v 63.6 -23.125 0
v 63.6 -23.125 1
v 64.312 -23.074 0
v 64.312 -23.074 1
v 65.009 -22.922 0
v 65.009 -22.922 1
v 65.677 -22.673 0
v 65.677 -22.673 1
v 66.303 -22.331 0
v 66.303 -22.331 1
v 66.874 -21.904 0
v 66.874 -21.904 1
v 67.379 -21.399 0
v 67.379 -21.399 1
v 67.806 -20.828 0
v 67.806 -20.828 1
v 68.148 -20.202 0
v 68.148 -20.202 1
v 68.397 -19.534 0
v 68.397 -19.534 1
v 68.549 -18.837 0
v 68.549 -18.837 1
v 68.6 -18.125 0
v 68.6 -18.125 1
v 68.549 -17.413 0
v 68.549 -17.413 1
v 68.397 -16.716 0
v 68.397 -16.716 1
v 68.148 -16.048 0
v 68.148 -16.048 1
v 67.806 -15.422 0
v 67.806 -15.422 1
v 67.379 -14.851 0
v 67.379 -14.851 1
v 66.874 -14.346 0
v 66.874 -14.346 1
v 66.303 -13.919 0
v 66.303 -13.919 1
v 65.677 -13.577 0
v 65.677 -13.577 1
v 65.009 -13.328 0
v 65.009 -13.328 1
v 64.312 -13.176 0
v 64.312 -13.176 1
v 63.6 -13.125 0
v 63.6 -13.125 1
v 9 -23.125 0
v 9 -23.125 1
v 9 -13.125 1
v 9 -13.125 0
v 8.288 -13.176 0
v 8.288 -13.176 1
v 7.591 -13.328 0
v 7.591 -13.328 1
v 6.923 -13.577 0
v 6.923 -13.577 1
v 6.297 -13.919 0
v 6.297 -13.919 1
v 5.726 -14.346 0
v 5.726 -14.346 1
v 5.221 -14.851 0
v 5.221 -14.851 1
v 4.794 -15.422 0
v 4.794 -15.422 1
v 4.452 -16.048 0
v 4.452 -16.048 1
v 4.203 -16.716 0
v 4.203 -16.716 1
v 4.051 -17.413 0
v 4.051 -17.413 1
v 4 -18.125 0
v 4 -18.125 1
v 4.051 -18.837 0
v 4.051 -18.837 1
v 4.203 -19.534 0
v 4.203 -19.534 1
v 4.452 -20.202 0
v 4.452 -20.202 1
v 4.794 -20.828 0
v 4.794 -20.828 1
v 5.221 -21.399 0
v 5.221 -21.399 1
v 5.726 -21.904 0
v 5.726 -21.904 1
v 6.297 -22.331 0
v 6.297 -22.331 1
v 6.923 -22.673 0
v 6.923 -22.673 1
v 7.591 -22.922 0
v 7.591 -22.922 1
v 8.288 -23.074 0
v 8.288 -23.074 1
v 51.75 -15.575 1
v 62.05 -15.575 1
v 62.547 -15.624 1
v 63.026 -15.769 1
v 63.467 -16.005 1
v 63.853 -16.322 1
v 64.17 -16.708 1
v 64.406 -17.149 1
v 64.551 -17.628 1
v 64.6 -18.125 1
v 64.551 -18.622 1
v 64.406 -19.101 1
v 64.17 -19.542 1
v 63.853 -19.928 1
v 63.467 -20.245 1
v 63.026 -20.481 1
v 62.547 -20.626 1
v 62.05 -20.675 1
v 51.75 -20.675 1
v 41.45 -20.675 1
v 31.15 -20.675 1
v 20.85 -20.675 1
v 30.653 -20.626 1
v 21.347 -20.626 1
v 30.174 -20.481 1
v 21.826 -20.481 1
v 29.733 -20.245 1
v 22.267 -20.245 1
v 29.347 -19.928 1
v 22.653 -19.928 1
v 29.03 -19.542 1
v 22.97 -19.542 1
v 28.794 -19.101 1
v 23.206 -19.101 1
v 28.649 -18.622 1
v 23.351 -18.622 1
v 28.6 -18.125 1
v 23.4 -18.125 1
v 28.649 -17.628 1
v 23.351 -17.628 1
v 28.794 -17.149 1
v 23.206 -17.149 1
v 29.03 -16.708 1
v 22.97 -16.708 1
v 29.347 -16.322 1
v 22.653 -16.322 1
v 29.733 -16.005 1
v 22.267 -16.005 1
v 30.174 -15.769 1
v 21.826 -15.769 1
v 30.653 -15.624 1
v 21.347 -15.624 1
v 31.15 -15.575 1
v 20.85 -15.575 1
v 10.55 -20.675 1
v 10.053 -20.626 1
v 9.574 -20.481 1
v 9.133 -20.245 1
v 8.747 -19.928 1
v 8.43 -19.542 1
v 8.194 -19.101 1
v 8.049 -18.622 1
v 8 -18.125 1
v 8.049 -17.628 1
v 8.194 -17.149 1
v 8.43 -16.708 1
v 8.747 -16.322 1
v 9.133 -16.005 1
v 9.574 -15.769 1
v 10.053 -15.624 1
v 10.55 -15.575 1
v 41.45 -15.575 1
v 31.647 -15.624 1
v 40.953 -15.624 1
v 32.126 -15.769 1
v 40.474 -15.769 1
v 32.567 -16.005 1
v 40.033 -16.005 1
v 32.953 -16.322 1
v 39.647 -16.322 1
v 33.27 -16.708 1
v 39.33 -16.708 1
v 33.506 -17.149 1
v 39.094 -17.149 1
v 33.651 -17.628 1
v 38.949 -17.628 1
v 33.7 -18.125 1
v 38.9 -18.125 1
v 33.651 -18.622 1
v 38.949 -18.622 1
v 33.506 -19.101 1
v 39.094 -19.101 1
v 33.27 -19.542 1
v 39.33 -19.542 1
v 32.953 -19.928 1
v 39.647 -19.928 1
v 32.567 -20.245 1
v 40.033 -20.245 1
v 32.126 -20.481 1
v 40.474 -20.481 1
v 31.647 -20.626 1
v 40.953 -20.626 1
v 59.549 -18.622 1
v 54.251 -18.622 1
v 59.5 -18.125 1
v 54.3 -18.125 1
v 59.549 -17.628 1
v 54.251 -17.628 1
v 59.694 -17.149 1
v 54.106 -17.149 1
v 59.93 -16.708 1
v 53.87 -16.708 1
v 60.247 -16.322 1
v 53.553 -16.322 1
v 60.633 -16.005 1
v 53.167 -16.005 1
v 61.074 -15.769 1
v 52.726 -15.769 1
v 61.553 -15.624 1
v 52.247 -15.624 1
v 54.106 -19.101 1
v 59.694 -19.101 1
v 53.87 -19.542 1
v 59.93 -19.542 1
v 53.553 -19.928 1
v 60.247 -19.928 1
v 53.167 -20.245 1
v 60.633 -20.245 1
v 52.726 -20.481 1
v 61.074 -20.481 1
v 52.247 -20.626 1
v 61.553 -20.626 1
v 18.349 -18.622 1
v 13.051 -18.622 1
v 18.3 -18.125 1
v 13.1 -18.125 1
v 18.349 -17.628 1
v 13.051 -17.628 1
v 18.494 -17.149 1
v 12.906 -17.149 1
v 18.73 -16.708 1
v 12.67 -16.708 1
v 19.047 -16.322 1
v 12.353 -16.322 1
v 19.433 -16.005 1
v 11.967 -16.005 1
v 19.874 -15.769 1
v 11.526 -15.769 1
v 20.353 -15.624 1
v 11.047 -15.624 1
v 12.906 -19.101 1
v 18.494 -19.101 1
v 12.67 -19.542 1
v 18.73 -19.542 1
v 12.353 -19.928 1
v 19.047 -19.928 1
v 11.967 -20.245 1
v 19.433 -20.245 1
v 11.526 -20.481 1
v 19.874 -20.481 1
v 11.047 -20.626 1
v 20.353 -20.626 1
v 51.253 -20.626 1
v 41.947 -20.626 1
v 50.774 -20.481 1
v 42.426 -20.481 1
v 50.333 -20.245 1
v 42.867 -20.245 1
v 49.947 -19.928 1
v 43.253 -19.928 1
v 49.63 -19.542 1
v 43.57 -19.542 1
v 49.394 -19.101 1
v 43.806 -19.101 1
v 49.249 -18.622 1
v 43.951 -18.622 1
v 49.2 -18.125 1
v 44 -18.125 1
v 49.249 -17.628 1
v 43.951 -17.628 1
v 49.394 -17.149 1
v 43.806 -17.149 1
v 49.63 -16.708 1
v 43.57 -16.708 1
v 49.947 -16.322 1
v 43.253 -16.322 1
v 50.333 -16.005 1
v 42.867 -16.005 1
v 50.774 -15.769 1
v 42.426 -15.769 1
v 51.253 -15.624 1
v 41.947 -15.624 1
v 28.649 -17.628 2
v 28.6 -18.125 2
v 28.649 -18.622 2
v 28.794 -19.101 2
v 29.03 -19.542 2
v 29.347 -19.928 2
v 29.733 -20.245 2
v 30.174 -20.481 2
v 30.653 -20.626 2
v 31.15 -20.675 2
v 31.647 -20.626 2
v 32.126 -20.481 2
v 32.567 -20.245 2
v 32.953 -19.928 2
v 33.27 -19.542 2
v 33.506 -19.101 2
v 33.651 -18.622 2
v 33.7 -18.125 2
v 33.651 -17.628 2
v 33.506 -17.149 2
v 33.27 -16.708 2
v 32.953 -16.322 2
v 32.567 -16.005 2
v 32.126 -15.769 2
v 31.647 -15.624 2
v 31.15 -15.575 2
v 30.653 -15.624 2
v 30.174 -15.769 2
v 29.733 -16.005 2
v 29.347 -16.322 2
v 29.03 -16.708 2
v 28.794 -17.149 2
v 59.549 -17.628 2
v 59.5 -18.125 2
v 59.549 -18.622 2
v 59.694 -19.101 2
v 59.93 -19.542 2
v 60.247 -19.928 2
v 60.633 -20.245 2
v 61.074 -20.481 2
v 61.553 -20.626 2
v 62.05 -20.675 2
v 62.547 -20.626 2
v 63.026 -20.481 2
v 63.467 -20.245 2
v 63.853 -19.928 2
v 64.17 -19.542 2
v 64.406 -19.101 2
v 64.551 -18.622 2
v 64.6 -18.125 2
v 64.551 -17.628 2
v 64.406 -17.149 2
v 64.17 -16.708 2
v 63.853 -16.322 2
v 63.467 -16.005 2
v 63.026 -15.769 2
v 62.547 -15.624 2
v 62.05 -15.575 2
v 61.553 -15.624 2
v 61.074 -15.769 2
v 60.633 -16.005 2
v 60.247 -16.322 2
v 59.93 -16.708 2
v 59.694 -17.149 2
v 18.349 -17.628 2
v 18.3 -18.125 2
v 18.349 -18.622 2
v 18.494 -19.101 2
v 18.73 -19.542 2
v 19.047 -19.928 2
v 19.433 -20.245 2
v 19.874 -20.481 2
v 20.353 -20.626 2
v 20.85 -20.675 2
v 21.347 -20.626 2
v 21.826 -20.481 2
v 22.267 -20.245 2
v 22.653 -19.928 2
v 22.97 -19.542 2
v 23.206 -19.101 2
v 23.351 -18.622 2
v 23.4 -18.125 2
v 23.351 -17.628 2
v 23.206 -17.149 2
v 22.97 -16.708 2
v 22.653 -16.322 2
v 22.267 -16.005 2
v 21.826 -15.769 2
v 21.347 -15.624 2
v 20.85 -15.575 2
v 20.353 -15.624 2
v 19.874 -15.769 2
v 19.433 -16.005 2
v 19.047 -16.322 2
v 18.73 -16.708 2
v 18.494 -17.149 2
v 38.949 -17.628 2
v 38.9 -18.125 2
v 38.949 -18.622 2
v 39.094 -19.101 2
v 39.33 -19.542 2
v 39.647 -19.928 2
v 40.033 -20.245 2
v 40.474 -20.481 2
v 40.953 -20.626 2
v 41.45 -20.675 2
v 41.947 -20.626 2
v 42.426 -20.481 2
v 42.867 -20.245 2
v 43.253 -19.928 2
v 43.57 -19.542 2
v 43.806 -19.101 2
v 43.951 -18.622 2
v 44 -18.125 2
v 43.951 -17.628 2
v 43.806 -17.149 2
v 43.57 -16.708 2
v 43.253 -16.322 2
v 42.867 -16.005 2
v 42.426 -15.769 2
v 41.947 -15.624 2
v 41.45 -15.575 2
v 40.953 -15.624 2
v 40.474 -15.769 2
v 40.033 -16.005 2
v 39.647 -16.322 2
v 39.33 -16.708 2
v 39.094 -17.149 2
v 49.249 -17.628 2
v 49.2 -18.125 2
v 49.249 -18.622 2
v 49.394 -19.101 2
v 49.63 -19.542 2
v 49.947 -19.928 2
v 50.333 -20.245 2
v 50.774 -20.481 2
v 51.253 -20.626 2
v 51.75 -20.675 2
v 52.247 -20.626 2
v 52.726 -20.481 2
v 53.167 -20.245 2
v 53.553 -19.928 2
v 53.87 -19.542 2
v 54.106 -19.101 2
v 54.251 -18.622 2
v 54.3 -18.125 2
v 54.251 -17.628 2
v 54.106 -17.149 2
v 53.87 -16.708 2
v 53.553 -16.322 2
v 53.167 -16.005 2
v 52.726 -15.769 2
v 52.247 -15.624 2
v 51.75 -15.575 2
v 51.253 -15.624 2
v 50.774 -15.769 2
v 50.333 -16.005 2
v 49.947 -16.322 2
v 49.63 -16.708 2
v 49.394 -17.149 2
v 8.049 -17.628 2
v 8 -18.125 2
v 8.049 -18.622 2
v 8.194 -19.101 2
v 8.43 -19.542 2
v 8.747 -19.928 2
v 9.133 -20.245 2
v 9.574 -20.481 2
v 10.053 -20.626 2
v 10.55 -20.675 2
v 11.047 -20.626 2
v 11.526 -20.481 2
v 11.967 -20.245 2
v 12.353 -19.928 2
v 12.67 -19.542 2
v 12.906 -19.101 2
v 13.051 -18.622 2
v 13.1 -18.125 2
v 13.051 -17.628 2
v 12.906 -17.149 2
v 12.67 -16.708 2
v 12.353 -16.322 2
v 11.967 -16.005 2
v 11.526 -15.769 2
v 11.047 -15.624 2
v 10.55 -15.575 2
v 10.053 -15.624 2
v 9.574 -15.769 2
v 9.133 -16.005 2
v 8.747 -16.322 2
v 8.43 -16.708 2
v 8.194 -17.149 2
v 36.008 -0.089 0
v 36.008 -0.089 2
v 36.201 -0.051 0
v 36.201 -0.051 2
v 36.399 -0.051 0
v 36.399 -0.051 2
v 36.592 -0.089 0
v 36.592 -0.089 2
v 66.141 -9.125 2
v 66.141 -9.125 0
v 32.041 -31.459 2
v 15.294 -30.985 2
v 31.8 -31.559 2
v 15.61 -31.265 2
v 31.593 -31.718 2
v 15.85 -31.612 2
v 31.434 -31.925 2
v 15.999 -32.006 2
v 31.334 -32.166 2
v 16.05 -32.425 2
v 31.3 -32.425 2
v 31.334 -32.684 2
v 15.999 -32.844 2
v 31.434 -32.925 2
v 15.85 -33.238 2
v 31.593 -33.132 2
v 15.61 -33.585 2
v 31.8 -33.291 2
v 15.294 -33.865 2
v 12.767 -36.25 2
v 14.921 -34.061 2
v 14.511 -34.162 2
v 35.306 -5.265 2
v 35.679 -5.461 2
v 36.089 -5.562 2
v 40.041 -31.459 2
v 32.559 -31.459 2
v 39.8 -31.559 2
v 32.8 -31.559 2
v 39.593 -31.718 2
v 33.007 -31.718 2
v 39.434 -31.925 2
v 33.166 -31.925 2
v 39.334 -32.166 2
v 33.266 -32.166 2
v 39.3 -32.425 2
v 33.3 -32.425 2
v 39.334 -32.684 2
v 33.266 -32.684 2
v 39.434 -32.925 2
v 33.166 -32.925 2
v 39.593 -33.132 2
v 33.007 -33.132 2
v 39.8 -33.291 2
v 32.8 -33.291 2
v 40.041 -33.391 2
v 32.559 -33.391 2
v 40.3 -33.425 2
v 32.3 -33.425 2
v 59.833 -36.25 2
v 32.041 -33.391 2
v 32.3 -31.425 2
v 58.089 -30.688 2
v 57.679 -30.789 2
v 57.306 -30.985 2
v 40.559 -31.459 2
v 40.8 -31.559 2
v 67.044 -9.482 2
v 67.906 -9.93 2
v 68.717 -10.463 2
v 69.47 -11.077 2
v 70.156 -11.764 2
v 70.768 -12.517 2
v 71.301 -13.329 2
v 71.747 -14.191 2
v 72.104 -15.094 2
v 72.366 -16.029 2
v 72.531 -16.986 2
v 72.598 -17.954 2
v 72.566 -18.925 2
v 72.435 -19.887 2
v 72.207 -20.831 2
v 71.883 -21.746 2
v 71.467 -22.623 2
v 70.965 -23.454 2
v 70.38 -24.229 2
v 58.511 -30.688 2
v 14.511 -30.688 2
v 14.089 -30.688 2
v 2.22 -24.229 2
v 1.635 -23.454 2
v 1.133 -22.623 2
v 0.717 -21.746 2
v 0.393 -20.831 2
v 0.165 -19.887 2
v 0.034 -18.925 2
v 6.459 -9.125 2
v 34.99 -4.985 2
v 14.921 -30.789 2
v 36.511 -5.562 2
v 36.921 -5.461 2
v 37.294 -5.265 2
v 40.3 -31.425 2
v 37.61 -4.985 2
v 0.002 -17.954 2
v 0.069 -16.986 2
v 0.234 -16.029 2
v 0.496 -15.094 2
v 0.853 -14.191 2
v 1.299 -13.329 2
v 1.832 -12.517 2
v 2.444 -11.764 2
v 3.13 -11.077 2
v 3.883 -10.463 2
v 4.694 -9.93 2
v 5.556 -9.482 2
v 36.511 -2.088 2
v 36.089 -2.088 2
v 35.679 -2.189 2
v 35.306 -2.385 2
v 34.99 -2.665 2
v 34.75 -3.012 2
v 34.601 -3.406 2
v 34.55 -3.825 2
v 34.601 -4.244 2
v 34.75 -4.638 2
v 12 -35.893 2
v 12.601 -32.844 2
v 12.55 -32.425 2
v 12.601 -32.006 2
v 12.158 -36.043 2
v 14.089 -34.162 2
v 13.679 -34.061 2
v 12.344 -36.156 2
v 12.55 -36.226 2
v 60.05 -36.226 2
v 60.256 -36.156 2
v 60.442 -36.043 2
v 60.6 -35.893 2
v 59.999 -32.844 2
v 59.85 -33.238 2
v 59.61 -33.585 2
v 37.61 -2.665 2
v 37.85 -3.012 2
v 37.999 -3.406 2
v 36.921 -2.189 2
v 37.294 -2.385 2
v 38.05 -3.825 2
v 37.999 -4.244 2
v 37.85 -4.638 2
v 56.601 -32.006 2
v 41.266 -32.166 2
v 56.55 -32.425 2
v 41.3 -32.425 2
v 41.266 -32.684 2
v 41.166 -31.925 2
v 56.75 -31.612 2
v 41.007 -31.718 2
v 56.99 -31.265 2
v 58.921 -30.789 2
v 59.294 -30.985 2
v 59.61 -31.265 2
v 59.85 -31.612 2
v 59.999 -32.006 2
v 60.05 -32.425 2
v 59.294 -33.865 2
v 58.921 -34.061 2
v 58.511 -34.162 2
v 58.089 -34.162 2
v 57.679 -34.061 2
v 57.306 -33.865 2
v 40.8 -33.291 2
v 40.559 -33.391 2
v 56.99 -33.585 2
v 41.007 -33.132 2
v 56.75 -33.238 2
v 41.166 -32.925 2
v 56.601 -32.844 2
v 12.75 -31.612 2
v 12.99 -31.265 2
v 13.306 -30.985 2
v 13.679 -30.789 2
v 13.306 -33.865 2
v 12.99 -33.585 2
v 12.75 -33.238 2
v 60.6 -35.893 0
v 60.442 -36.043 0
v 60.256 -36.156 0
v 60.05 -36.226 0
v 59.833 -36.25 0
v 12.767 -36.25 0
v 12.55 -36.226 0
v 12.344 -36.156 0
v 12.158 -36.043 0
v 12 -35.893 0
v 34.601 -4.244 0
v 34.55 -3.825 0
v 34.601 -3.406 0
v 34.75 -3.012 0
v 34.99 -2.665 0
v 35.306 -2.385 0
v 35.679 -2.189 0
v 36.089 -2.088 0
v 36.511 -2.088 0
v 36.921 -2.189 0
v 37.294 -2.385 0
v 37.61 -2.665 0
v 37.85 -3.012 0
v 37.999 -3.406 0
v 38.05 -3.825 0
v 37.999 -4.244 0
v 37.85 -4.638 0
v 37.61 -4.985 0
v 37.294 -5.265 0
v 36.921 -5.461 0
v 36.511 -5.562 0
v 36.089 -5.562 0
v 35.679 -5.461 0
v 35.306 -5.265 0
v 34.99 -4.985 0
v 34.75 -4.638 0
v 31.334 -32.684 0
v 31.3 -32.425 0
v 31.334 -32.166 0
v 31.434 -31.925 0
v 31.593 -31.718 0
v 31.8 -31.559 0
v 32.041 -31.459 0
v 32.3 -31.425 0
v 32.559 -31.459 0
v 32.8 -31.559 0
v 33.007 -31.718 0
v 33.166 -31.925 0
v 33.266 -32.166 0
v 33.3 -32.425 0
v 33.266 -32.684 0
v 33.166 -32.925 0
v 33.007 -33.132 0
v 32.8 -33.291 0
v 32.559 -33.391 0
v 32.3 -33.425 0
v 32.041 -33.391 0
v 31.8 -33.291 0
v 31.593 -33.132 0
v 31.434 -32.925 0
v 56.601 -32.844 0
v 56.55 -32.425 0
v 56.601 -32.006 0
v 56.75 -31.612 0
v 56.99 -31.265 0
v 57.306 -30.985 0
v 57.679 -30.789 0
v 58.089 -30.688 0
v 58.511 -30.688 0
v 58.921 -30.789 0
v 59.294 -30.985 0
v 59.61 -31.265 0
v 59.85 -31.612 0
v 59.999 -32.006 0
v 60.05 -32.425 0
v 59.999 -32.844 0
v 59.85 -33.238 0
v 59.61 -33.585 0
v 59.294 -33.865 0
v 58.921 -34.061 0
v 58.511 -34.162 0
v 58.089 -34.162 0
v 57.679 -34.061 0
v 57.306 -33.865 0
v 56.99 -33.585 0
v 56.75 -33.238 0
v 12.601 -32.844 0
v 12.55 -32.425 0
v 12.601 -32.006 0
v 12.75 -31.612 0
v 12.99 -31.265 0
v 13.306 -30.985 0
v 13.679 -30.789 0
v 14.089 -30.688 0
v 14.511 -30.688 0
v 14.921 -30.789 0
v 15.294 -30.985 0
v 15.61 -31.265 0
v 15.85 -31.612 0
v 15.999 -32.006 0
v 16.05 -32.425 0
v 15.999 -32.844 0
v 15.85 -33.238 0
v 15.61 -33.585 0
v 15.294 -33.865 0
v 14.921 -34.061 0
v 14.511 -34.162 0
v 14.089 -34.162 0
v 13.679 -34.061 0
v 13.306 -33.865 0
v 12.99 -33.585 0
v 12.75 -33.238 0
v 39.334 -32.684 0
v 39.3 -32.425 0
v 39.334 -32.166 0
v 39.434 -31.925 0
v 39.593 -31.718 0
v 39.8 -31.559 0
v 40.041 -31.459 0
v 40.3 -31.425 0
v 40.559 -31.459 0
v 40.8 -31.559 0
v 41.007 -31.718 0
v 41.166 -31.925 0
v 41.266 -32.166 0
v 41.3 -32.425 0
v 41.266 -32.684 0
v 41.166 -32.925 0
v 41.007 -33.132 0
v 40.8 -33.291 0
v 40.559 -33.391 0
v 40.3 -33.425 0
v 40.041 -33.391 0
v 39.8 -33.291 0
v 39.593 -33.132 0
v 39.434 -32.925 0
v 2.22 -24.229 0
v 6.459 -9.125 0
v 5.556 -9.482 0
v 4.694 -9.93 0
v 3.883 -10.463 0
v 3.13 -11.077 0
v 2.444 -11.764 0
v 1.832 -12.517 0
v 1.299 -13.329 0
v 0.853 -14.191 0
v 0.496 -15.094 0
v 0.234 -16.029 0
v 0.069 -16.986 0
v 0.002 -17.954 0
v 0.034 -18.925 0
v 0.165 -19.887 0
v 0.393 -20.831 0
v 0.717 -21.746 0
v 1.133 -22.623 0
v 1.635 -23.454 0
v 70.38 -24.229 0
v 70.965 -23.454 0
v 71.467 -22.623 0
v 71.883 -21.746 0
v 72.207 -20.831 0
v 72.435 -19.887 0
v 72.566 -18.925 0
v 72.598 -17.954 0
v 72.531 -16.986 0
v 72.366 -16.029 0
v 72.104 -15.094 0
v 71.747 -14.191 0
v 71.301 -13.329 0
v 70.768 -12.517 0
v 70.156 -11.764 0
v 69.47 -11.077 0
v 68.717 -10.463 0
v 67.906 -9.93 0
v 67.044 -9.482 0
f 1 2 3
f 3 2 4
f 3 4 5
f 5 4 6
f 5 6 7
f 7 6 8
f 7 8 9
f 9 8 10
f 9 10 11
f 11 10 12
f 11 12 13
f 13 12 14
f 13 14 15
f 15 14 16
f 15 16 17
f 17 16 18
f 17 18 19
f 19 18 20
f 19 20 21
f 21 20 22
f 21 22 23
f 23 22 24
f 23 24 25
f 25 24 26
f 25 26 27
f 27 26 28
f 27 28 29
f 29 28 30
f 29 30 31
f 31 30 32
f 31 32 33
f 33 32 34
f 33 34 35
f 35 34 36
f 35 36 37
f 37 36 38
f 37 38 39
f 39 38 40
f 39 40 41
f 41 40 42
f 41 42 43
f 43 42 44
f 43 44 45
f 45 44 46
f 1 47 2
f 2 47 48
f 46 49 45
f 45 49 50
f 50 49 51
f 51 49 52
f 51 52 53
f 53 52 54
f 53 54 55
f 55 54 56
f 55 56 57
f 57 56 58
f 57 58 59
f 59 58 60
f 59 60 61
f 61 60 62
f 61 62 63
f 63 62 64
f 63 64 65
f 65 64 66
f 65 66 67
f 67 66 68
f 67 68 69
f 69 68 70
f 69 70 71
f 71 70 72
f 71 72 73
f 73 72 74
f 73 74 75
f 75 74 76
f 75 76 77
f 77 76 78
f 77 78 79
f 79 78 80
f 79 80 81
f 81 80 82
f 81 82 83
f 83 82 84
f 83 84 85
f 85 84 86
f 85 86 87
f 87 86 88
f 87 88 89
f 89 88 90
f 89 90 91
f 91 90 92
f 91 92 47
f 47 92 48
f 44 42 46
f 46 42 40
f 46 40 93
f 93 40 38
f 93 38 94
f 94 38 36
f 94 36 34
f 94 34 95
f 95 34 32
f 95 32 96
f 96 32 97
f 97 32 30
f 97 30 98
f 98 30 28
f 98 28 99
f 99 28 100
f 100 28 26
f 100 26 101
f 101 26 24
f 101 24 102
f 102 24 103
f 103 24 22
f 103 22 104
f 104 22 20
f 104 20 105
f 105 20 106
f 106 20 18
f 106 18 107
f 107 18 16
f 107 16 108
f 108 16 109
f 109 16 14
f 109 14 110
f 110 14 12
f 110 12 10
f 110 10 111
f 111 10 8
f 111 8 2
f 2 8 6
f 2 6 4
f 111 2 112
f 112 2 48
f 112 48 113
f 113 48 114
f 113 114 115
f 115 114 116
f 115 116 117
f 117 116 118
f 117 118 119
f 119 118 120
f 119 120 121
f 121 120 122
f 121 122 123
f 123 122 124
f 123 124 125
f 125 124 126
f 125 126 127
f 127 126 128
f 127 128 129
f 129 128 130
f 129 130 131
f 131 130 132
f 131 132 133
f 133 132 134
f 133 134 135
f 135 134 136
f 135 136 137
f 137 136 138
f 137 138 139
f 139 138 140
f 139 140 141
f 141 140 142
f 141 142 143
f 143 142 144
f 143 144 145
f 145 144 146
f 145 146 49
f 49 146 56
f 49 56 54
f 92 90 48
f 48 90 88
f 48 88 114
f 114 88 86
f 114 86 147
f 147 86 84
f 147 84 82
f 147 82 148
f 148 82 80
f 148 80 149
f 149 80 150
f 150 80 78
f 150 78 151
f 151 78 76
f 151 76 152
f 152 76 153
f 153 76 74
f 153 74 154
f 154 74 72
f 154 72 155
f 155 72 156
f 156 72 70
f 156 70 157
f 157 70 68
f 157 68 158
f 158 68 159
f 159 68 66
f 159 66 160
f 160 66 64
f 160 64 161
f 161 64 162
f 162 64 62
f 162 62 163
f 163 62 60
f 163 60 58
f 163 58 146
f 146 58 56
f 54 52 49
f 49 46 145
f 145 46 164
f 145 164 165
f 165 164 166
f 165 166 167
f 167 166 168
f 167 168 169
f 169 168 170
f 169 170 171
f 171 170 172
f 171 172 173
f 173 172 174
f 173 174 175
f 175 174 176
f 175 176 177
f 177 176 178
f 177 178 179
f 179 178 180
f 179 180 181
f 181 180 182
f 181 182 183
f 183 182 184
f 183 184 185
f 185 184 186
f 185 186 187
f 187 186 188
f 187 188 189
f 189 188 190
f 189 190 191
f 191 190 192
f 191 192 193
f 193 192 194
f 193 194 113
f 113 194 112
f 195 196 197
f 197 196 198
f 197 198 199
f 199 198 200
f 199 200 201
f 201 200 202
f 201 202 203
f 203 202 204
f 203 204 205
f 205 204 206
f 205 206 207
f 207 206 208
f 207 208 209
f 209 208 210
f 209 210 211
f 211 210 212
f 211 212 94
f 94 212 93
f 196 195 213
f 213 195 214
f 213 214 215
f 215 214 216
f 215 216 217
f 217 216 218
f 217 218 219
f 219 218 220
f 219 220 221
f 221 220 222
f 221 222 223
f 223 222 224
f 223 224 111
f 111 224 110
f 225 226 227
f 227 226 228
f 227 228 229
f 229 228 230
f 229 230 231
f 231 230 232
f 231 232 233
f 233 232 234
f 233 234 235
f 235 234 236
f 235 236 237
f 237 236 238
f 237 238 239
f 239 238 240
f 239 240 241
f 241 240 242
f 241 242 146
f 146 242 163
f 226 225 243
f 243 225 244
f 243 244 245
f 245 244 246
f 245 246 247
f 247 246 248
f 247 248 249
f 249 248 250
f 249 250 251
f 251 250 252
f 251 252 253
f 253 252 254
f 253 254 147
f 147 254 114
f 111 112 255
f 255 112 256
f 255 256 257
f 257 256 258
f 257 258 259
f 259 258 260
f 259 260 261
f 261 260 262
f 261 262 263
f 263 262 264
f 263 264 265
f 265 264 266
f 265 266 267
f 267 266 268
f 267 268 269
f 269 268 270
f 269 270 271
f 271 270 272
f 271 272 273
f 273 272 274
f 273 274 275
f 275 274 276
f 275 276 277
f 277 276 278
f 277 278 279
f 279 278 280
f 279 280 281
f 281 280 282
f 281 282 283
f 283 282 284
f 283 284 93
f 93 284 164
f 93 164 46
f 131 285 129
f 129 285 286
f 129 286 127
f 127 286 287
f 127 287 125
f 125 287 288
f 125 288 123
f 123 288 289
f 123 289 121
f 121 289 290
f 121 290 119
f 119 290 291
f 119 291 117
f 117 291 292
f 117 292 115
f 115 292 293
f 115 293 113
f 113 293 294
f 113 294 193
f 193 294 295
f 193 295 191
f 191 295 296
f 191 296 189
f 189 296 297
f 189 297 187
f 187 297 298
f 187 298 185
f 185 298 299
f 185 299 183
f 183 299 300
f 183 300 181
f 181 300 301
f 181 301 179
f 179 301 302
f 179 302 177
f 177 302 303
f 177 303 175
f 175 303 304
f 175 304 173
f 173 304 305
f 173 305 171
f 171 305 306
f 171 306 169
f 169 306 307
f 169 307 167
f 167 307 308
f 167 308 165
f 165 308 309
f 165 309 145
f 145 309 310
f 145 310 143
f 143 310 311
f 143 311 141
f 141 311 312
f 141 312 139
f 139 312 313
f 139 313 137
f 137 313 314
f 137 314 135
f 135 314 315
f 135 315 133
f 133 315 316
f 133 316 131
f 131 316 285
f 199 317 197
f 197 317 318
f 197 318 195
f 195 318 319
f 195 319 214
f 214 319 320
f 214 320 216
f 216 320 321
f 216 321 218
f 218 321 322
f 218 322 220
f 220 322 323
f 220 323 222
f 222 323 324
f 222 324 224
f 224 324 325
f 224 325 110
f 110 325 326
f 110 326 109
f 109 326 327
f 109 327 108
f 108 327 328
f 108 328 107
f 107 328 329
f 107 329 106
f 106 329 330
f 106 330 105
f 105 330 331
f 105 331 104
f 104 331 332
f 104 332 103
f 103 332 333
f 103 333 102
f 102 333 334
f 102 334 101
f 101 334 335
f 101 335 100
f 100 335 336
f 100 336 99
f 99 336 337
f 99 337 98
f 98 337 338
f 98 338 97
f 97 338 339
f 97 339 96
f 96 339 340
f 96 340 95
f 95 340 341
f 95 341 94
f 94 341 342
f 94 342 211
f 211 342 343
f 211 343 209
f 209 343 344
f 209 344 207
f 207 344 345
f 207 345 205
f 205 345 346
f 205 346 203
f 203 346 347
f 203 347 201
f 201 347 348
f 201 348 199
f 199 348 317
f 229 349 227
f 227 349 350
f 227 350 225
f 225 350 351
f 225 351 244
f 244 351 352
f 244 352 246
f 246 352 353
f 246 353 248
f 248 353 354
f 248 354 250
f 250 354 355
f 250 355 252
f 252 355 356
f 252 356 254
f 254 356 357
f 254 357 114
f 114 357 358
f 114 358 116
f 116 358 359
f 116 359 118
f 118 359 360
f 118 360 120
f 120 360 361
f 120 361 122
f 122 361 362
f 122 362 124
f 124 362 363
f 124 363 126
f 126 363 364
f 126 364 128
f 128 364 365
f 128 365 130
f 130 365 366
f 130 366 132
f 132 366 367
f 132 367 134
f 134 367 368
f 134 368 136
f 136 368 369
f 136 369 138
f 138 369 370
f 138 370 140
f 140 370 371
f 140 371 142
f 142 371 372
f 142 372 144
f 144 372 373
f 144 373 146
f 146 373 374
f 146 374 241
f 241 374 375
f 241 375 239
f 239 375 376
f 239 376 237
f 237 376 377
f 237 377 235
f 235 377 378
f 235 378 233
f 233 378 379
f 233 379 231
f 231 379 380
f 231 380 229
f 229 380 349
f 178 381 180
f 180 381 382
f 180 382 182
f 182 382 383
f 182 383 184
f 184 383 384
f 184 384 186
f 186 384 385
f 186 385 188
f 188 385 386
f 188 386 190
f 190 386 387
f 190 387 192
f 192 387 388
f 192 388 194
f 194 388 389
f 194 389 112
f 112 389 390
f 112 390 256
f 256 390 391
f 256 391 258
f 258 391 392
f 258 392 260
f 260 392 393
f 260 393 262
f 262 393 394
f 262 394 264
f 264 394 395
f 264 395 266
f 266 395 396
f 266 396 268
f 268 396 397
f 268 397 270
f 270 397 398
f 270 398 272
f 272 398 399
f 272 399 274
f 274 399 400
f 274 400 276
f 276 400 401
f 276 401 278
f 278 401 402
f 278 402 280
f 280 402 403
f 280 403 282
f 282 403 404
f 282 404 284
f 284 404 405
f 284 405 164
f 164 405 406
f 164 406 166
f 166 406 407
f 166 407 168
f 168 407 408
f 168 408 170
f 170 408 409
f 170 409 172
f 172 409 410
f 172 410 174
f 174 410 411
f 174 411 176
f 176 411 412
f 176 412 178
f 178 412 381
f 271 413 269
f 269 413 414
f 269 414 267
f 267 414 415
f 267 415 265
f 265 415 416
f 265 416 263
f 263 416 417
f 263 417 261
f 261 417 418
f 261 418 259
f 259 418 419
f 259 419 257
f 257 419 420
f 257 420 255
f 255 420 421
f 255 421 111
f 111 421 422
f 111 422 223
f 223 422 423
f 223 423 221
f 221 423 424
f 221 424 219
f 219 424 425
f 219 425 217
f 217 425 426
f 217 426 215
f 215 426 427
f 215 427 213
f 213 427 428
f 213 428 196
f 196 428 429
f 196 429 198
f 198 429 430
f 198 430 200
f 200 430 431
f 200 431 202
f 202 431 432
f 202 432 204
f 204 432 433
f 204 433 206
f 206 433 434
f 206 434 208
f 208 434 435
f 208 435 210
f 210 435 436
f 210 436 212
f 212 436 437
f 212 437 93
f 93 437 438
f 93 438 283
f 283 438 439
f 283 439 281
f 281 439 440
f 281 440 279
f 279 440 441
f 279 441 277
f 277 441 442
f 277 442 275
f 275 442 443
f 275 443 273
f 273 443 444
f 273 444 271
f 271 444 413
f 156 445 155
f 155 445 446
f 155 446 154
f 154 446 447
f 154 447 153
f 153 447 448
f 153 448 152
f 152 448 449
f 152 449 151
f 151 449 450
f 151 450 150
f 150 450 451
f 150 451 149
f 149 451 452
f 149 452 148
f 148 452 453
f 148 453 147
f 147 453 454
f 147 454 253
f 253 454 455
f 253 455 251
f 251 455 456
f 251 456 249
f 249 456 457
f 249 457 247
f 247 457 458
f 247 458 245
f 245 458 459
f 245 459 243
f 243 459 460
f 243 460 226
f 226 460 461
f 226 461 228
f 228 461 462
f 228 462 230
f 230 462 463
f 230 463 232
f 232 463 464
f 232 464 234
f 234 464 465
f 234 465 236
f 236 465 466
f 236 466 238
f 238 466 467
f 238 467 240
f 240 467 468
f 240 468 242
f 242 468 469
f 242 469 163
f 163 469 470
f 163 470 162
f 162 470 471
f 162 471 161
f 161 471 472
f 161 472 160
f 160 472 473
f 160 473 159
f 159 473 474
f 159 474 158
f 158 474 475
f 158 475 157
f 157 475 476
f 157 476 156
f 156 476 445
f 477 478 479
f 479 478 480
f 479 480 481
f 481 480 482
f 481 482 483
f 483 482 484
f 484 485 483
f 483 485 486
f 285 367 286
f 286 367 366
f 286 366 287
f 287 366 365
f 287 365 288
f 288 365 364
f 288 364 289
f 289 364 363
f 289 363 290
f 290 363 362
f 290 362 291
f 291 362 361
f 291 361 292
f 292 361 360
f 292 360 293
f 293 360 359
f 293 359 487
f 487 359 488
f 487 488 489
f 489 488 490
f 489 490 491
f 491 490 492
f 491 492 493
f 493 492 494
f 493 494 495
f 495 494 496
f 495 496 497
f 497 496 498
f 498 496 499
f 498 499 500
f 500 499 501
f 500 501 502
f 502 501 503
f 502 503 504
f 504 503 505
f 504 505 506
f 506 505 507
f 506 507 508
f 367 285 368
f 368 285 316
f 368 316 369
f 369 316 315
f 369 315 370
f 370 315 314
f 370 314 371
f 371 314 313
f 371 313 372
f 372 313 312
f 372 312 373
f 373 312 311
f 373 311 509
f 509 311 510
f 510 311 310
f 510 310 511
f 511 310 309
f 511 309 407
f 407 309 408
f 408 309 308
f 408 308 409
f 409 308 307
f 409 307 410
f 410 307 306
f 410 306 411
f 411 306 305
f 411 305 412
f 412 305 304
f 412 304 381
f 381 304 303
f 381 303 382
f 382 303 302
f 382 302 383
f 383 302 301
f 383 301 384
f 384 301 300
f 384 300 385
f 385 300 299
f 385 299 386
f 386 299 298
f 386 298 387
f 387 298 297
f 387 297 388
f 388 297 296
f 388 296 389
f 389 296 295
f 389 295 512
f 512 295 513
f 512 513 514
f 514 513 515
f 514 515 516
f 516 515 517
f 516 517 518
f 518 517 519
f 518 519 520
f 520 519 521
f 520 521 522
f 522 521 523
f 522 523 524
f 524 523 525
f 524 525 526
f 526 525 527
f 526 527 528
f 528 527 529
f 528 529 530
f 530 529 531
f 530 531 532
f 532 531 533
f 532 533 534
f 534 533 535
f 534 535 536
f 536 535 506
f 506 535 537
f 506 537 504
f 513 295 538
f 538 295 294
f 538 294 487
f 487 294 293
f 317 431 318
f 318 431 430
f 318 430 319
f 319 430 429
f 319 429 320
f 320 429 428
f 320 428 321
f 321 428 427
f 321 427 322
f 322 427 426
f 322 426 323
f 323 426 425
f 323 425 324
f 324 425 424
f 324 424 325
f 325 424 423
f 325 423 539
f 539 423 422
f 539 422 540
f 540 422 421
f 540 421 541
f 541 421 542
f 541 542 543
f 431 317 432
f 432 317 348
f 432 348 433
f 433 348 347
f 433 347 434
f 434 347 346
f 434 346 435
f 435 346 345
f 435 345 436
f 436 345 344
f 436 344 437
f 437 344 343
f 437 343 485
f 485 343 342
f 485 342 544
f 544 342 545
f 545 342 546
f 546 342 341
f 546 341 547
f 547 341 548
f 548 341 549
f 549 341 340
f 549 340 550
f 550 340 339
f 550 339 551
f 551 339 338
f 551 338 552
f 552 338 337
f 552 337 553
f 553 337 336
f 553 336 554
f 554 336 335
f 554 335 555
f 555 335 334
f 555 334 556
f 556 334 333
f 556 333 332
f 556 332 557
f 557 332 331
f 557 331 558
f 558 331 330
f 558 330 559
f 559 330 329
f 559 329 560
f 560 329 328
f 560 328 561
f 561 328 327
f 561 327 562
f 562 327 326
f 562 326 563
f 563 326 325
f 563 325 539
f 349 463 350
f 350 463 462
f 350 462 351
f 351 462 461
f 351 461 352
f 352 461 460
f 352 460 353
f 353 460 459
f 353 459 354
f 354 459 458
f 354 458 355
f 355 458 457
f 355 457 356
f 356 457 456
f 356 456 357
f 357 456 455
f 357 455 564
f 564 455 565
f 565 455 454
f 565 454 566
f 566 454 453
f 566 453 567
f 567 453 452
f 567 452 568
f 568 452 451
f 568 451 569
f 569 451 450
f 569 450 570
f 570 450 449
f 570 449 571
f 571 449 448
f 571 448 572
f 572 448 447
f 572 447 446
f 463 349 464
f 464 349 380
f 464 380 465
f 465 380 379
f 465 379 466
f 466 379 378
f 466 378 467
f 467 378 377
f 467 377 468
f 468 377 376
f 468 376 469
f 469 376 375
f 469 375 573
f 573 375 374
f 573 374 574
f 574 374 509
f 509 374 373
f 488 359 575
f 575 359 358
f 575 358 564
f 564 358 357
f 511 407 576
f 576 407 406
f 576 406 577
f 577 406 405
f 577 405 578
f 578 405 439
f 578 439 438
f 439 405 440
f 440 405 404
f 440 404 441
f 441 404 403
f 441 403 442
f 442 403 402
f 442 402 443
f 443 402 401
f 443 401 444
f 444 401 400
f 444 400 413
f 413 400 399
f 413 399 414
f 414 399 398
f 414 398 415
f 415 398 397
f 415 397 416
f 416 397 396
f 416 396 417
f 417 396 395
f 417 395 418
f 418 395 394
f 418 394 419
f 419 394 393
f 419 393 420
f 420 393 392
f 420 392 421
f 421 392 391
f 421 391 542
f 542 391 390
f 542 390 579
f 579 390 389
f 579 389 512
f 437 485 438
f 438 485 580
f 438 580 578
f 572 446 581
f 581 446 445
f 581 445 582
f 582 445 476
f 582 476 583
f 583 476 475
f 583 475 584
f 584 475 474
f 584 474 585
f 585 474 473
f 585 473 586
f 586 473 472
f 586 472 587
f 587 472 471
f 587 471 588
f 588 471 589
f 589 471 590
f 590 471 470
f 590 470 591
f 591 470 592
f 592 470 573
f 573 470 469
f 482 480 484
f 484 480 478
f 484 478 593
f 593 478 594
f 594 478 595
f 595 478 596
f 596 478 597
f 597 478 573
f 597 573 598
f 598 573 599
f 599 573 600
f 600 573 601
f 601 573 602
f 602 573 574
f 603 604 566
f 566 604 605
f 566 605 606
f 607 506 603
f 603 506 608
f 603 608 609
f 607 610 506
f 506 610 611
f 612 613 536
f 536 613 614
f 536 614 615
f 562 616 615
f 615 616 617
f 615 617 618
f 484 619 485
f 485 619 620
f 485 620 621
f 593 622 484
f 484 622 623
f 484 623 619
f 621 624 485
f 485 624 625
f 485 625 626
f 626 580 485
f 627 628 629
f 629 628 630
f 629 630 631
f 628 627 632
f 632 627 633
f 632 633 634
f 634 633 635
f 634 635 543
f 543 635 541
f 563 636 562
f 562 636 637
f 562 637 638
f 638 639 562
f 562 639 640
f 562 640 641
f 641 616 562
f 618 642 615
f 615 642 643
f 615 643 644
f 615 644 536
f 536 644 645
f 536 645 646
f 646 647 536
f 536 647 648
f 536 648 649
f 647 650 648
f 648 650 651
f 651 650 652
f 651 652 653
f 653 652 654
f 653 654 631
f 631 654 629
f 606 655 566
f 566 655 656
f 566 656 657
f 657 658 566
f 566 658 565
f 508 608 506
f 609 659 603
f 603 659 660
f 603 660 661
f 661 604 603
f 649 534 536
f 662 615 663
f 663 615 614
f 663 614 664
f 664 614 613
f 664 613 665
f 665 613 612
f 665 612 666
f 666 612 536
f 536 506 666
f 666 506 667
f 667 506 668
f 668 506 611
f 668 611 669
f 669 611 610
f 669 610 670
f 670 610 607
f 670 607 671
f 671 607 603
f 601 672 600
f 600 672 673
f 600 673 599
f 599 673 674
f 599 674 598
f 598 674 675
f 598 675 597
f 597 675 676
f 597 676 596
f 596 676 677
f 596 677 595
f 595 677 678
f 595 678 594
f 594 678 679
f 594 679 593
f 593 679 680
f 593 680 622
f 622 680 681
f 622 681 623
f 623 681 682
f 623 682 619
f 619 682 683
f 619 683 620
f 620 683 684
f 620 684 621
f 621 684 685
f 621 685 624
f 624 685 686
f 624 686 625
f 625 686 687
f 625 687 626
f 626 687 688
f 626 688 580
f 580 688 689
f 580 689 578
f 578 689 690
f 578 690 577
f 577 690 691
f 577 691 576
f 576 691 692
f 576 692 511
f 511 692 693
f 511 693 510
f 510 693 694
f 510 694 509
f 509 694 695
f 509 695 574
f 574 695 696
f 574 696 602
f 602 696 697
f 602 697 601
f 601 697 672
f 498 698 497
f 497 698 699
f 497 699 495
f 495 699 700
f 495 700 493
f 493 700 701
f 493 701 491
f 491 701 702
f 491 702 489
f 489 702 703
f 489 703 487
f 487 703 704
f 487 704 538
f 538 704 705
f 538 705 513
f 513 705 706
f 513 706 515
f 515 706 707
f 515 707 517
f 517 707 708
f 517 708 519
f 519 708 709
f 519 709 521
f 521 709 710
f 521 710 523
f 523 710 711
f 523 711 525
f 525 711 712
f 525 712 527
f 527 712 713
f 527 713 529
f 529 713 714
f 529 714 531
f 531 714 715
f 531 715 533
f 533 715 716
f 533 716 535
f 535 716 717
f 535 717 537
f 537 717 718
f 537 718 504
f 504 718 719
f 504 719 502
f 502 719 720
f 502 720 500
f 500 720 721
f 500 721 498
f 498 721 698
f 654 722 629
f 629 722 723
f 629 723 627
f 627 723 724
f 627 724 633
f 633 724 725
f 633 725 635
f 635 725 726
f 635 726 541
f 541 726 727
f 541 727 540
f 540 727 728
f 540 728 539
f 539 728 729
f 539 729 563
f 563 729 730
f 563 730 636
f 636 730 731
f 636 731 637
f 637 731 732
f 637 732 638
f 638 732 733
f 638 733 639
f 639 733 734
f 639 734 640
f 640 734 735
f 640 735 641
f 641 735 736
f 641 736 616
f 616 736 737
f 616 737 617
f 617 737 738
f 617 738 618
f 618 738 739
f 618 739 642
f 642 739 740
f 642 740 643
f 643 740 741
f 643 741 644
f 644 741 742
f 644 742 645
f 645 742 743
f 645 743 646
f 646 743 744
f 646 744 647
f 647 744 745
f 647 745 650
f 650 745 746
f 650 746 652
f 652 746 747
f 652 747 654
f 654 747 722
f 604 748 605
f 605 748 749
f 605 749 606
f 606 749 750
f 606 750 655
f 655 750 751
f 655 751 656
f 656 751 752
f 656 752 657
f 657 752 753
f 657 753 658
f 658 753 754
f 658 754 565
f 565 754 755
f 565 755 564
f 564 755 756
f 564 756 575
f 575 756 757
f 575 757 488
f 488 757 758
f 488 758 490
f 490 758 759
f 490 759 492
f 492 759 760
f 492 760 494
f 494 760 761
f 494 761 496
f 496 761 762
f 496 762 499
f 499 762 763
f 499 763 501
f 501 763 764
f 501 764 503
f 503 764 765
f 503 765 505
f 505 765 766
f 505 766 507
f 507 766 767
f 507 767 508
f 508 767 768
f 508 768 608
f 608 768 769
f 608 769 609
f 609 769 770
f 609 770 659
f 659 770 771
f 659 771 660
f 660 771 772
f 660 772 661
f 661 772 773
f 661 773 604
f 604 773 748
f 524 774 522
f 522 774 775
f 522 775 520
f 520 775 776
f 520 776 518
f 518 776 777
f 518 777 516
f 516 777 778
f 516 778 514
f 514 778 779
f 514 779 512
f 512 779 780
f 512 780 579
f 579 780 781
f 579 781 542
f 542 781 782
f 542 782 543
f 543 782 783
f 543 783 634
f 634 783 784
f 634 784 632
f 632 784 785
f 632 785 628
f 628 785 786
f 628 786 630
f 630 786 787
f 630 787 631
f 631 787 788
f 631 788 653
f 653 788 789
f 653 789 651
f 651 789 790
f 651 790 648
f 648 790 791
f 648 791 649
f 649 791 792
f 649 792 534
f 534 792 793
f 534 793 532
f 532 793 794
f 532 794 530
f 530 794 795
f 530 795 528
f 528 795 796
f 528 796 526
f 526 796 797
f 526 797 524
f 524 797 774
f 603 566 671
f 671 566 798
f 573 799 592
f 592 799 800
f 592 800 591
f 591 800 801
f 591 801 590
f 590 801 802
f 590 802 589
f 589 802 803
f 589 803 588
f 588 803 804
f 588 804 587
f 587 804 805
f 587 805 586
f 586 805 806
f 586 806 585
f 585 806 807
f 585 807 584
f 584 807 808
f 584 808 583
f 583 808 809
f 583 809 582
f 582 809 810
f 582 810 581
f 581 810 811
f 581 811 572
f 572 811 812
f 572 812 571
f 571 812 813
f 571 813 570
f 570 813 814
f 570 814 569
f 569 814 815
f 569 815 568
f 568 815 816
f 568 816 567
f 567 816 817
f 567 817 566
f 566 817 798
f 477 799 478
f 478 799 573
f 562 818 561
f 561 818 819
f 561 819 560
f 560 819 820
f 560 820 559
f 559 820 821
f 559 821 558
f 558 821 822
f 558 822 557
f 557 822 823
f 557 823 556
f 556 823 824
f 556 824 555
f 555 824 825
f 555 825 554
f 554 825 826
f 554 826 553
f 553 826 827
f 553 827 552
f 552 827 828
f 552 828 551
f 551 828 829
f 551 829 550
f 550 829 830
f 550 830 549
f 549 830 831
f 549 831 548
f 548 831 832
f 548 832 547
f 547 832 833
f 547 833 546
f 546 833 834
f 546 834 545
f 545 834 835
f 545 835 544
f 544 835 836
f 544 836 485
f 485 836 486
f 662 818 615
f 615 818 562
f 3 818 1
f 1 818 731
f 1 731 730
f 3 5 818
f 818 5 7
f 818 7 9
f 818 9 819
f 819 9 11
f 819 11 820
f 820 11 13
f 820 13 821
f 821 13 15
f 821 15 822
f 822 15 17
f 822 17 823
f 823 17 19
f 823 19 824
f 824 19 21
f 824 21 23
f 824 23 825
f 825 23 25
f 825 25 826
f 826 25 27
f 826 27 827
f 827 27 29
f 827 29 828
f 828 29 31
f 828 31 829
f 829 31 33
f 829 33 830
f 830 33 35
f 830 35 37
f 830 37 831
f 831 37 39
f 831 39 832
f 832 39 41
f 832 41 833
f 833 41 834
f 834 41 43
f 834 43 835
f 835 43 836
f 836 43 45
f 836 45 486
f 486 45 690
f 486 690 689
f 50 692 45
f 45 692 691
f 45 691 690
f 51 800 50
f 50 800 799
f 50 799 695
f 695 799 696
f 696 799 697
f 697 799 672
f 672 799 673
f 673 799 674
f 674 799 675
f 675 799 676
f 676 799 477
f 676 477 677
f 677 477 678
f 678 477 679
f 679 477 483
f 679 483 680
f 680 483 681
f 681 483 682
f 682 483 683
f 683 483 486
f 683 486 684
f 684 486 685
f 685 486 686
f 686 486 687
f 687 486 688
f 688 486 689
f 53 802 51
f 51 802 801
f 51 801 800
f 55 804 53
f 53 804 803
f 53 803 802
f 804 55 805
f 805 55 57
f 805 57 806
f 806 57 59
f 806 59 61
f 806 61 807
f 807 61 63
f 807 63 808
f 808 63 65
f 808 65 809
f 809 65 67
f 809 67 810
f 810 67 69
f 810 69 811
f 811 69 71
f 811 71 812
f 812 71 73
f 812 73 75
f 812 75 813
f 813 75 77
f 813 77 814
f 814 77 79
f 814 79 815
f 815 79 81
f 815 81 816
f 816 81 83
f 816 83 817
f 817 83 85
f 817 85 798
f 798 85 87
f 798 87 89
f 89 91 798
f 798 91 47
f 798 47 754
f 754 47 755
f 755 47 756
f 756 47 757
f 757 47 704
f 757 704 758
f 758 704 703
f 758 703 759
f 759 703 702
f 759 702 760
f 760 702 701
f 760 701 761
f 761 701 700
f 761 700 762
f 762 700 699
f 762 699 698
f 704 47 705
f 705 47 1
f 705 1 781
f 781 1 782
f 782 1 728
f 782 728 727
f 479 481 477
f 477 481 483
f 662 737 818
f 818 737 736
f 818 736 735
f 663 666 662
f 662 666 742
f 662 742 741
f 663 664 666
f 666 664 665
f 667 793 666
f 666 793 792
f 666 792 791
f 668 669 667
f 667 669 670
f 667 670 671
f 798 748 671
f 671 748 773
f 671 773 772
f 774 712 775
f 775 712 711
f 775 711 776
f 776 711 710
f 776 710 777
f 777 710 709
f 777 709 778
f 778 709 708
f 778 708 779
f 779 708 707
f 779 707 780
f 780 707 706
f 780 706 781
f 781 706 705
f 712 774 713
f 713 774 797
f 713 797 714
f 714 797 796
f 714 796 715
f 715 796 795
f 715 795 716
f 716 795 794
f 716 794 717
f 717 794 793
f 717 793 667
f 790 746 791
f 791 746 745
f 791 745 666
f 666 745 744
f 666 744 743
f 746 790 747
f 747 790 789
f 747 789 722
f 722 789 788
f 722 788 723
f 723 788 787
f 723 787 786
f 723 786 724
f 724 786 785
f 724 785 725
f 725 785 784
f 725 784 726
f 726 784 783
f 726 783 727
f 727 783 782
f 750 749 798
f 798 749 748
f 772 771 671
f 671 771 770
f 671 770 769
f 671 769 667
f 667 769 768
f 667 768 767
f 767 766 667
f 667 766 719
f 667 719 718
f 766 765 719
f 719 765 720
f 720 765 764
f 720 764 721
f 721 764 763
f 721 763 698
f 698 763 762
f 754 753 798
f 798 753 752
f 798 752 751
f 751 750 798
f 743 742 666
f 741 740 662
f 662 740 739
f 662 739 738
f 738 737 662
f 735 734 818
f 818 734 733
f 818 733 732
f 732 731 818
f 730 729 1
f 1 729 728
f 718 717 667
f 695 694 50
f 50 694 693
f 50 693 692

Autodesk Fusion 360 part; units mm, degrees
sketch "スケッチ1" plane through (0, 0, 0) normal (0, 0, 1) x (1, 0, 0)
  line L0 (0, 0) -> (72.6, 0)
  line L1 (72.6, 0) -> (72.6, -36.25)
  line L2 (72.6, -36.25) -> (0, -36.25)
  line L3 (0, -36.25) -> (0, 0)
  line L4 (36.3, 0) -> (36.3, -36.25)
  line L5 (0, -18.125) -> (72.6, -18.125)
  line L6 (72.6, -8.625) -> (72.6, -26.625)
  line L7 (58.3, -36.25) -> (14.3, -36.25)
  line L8 (0, -9.125) -> (0, -27.125)
  line L9 (0, -18.125) -> (9.5, -18.125)
  line L10 (0, -9.125) -> (6.4586, -9.125)
  line L11 (0, -27.125) -> (4.6488, -27.125)
  line L12 (6.4586, -9.125) -> (36.3, 0)
  line L13 (14.3, -36.25) -> (12.3, -36.25)
  line L14 (12.3, -36.25) -> (2.2204, -24.2289)
  line L15 (36.3, -18.125) -> (36.3, -32.425)
  line L16 (36.3, -18.125) -> (36.3, -3.825)
  line L17 (66.1414, -9.125) -> (36.3, 0)
  line L18 (60.3, -36.25) -> (70.3796, -24.2289)
  line L19 (58.3, -36.25) -> (60.3, -36.25)
  line L20 (6.4586, -27.125) -> (66.1414, -27.125)
  line L21 (6.4586, -9.125) -> (66.1414, -9.125)
  arc A0 (6.9878, -8.9632) -> (6.4586, -27.125) centre (9.5, -18.125) ccw
  arc A1 (66.1414, -27.125) -> (65.6122, -8.9632) centre (63.1, -18.125) ccw
  circle A2 centre (14.3, -32.425) radius 1.75
  circle A3 centre (36.3, -3.825) radius 1.75
  circle A4 centre (58.3, -32.425) radius 1.75
  circle A5 centre (32.3, -32.425) radius 1
  circle A6 centre (40.3, -32.425) radius 1
  line L22 (36.3, -9.125) -> (36.3, -13.125)
  line L23 (0, -18.125) -> (4, -18.125)
  line L24 (36.3, -13.125) -> (5.4223, -13.125)
  line L25 (36.3, -27.125) -> (36.3, -23.125)
  line L26 (36.3, -23.125) -> (5.4223, -23.125)
  arc A7 (5.4223, -13.125) -> (5.4223, -23.125) centre (13.5, -18.125) ccw
  circle A8 centre (10.55, -18.125) radius 2.55
  circle A9 centre (20.85, -18.125) radius 2.55
  circle A10 centre (31.15, -18.125) radius 2.55
  line L27 (36.3, -13.125) -> (67.1777, -13.125)
  arc A11 (67.1777, -23.125) -> (67.1777, -13.125) centre (59.1, -18.125) ccw
  line L28 (36.3, -23.125) -> (67.1777, -23.125)
  circle A12 centre (41.45, -18.125) radius 2.55
  circle A13 centre (51.75, -18.125) radius 2.55
  circle A14 centre (62.05, -18.125) radius 2.55
  point P0 (36.3, -18.125)
  point P1 (36.3, -3.825)
  point P2 (14.3, -32.425)
  point P3 (58.3, -32.425)
  point P4 (40.3, -32.425)
  point P5 (40.3, -32.425)
  point P6 (32.3, -32.425)
  point P7 (31.15, -18.125)
  point P8 (20.85, -18.125)
  point P9 (10.55, -18.125)
  point P10 (41.45, -18.125)
  point P11 (51.75, -18.125)
  point P12 (62.05, -18.125)
  dimension "d5" = 72.6
  dimension "d6" = 36.25
  dimension "d10" = 44
  dimension "d11" = 9
  dimension "d12" = 18
  dimension "d13" = 9.5
  dimension "d14" = 2
  dimension "d15" = 14.3
  dimension "d16" = 22
  dimension "d17" = 14.3
  dimension "d18" = 3.5
  dimension "d19" = 3.5
  dimension "d20" = 3.5
  dimension "d21" = 4
  dimension "d24" = 2
  dimension "d25" = 2
  dimension "d30" = 4
  dimension "d31" = 4
  dimension "d32" = 9.5
  dimension "d33" = 4
  dimension "d34" = 5.15
  dimension "d35" = 10.3
  dimension "d36" = 10.3
  dimension "d37" = 5.1
  dimension "d38" = 5.1
  dimension "d39" = 5.1
  dimension "d46" = 5.1
  dimension "d47" = 5.1
  dimension "d48" = 5.1
extrude "押し出し1" add sketch "スケッチ1" along normal blind 2 contours L4 L16 L17 L21 A3 | L4 L12 L16 L21 A3 | L4 L5 L9 L16 L21 A0 L22 L23 L24 A7 | L4 L5 L9 L15 L20 A0 L23 L25 L26 A7 | L4 L5 L16 L21 A1 L22 L27 A11 | L4 L5 L9 L16 L24 A7 A8 A9 A10 | L4 L5 L9 L15 L26 A7 A8 A9 A10 | L2 L4 L7 L13 L14 L15 L20 A0 | L4 L5 L15 L20 A1 L25 A11 L28 | L5 L9 A8 | L5 L9 A8 | L4 L5 L16 L27 A11 A12 A13 A14 | L4 L5 L15 A11 L28 A12 A13 A14 | L2 L4 L7 L15 L18 L19 L20 A1 | L5 A14 | L5 A14 | L5 A9 | L5 A9 | L5 A10 | L5 A10 | L5 A12 | L5 A12 | L5 A13 | L5 A13
fillet "フィレット1" radius 1 3 edges at (12.3, -36.25, 1) (60.3, -36.25, 1) (36.3, 0, 1)
sketch "スケッチ2" plane through (0, 0, 2) normal (0, 0, 1) x (-1, 0, 0)
  arc A0 (-36.5924, 0.0894) -> (-36.0076, 0.0894) centre (-36.3, 1.0457) ccw
  line L0 (-36.0076, 0.0894) -> (-6.4586, 9.125)
  arc A1 (-6.4586, 9.125) -> (-2.2204, 24.2289) centre (-9.5, 18.125) ccw
  line L1 (-2.2204, 24.2289) -> (-12.0003, 35.8925)
  arc A2 (-12.0003, 35.8925) -> (-12.7665, 36.25) centre (-12.7665, 35.25) ccw
  line L2 (-12.7665, 36.25) -> (-59.8335, 36.25)
  arc A3 (-59.8335, 36.25) -> (-60.5997, 35.8925) centre (-59.8335, 35.25) ccw
  line L3 (-60.5997, 35.8925) -> (-70.3796, 24.2289)
  arc A4 (-70.3796, 24.2289) -> (-66.1414, 9.125) centre (-63.1, 18.125) ccw
  line L4 (-66.1414, 9.125) -> (-36.5924, 0.0894)
  circle A5 centre (-36.3, 3.825) radius 1.75
  circle A6 centre (-32.3, 32.425) radius 1
  circle A7 centre (-40.3, 32.425) radius 1
  circle A8 centre (-14.3, 32.425) radius 1.75
  circle A9 centre (-58.3, 32.425) radius 1.75
extrude "押し出し2" cut sketch "スケッチ1" along normal blind 2 contours L5 L9 A8 | L5 L9 A8 | L5 A14 | L5 A14 | L5 A9 | L5 A9 | L5 A10 | L5 A10 | L5 A12 | L5 A12 | L5 A13 | L5 A13
extrude "押し出し3" cut sketch "スケッチ1" along normal blind 1 contours L4 L5 L9 L16 L24 A7 A8 A9 A10 | L4 L5 L9 L15 L26 A7 A8 A9 A10 | L5 L9 A8 | L5 L9 A8 | L4 L5 L16 L27 A11 A12 A13 A14 | L4 L5 L15 A11 L28 A12 A13 A14 | L5 A14 | L5 A14 | L5 A9 | L5 A9 | L5 A10 | L5 A10 | L5 A12 | L5 A12 | L5 A13 | L5 A13
fillet "フィレット2" radius 5 4 edges at (5.4223, -23.125, 0.5) (5.4223, -13.125, 0.5) (67.1777, -23.125, 0.5) (67.1777, -13.125, 0.5)
